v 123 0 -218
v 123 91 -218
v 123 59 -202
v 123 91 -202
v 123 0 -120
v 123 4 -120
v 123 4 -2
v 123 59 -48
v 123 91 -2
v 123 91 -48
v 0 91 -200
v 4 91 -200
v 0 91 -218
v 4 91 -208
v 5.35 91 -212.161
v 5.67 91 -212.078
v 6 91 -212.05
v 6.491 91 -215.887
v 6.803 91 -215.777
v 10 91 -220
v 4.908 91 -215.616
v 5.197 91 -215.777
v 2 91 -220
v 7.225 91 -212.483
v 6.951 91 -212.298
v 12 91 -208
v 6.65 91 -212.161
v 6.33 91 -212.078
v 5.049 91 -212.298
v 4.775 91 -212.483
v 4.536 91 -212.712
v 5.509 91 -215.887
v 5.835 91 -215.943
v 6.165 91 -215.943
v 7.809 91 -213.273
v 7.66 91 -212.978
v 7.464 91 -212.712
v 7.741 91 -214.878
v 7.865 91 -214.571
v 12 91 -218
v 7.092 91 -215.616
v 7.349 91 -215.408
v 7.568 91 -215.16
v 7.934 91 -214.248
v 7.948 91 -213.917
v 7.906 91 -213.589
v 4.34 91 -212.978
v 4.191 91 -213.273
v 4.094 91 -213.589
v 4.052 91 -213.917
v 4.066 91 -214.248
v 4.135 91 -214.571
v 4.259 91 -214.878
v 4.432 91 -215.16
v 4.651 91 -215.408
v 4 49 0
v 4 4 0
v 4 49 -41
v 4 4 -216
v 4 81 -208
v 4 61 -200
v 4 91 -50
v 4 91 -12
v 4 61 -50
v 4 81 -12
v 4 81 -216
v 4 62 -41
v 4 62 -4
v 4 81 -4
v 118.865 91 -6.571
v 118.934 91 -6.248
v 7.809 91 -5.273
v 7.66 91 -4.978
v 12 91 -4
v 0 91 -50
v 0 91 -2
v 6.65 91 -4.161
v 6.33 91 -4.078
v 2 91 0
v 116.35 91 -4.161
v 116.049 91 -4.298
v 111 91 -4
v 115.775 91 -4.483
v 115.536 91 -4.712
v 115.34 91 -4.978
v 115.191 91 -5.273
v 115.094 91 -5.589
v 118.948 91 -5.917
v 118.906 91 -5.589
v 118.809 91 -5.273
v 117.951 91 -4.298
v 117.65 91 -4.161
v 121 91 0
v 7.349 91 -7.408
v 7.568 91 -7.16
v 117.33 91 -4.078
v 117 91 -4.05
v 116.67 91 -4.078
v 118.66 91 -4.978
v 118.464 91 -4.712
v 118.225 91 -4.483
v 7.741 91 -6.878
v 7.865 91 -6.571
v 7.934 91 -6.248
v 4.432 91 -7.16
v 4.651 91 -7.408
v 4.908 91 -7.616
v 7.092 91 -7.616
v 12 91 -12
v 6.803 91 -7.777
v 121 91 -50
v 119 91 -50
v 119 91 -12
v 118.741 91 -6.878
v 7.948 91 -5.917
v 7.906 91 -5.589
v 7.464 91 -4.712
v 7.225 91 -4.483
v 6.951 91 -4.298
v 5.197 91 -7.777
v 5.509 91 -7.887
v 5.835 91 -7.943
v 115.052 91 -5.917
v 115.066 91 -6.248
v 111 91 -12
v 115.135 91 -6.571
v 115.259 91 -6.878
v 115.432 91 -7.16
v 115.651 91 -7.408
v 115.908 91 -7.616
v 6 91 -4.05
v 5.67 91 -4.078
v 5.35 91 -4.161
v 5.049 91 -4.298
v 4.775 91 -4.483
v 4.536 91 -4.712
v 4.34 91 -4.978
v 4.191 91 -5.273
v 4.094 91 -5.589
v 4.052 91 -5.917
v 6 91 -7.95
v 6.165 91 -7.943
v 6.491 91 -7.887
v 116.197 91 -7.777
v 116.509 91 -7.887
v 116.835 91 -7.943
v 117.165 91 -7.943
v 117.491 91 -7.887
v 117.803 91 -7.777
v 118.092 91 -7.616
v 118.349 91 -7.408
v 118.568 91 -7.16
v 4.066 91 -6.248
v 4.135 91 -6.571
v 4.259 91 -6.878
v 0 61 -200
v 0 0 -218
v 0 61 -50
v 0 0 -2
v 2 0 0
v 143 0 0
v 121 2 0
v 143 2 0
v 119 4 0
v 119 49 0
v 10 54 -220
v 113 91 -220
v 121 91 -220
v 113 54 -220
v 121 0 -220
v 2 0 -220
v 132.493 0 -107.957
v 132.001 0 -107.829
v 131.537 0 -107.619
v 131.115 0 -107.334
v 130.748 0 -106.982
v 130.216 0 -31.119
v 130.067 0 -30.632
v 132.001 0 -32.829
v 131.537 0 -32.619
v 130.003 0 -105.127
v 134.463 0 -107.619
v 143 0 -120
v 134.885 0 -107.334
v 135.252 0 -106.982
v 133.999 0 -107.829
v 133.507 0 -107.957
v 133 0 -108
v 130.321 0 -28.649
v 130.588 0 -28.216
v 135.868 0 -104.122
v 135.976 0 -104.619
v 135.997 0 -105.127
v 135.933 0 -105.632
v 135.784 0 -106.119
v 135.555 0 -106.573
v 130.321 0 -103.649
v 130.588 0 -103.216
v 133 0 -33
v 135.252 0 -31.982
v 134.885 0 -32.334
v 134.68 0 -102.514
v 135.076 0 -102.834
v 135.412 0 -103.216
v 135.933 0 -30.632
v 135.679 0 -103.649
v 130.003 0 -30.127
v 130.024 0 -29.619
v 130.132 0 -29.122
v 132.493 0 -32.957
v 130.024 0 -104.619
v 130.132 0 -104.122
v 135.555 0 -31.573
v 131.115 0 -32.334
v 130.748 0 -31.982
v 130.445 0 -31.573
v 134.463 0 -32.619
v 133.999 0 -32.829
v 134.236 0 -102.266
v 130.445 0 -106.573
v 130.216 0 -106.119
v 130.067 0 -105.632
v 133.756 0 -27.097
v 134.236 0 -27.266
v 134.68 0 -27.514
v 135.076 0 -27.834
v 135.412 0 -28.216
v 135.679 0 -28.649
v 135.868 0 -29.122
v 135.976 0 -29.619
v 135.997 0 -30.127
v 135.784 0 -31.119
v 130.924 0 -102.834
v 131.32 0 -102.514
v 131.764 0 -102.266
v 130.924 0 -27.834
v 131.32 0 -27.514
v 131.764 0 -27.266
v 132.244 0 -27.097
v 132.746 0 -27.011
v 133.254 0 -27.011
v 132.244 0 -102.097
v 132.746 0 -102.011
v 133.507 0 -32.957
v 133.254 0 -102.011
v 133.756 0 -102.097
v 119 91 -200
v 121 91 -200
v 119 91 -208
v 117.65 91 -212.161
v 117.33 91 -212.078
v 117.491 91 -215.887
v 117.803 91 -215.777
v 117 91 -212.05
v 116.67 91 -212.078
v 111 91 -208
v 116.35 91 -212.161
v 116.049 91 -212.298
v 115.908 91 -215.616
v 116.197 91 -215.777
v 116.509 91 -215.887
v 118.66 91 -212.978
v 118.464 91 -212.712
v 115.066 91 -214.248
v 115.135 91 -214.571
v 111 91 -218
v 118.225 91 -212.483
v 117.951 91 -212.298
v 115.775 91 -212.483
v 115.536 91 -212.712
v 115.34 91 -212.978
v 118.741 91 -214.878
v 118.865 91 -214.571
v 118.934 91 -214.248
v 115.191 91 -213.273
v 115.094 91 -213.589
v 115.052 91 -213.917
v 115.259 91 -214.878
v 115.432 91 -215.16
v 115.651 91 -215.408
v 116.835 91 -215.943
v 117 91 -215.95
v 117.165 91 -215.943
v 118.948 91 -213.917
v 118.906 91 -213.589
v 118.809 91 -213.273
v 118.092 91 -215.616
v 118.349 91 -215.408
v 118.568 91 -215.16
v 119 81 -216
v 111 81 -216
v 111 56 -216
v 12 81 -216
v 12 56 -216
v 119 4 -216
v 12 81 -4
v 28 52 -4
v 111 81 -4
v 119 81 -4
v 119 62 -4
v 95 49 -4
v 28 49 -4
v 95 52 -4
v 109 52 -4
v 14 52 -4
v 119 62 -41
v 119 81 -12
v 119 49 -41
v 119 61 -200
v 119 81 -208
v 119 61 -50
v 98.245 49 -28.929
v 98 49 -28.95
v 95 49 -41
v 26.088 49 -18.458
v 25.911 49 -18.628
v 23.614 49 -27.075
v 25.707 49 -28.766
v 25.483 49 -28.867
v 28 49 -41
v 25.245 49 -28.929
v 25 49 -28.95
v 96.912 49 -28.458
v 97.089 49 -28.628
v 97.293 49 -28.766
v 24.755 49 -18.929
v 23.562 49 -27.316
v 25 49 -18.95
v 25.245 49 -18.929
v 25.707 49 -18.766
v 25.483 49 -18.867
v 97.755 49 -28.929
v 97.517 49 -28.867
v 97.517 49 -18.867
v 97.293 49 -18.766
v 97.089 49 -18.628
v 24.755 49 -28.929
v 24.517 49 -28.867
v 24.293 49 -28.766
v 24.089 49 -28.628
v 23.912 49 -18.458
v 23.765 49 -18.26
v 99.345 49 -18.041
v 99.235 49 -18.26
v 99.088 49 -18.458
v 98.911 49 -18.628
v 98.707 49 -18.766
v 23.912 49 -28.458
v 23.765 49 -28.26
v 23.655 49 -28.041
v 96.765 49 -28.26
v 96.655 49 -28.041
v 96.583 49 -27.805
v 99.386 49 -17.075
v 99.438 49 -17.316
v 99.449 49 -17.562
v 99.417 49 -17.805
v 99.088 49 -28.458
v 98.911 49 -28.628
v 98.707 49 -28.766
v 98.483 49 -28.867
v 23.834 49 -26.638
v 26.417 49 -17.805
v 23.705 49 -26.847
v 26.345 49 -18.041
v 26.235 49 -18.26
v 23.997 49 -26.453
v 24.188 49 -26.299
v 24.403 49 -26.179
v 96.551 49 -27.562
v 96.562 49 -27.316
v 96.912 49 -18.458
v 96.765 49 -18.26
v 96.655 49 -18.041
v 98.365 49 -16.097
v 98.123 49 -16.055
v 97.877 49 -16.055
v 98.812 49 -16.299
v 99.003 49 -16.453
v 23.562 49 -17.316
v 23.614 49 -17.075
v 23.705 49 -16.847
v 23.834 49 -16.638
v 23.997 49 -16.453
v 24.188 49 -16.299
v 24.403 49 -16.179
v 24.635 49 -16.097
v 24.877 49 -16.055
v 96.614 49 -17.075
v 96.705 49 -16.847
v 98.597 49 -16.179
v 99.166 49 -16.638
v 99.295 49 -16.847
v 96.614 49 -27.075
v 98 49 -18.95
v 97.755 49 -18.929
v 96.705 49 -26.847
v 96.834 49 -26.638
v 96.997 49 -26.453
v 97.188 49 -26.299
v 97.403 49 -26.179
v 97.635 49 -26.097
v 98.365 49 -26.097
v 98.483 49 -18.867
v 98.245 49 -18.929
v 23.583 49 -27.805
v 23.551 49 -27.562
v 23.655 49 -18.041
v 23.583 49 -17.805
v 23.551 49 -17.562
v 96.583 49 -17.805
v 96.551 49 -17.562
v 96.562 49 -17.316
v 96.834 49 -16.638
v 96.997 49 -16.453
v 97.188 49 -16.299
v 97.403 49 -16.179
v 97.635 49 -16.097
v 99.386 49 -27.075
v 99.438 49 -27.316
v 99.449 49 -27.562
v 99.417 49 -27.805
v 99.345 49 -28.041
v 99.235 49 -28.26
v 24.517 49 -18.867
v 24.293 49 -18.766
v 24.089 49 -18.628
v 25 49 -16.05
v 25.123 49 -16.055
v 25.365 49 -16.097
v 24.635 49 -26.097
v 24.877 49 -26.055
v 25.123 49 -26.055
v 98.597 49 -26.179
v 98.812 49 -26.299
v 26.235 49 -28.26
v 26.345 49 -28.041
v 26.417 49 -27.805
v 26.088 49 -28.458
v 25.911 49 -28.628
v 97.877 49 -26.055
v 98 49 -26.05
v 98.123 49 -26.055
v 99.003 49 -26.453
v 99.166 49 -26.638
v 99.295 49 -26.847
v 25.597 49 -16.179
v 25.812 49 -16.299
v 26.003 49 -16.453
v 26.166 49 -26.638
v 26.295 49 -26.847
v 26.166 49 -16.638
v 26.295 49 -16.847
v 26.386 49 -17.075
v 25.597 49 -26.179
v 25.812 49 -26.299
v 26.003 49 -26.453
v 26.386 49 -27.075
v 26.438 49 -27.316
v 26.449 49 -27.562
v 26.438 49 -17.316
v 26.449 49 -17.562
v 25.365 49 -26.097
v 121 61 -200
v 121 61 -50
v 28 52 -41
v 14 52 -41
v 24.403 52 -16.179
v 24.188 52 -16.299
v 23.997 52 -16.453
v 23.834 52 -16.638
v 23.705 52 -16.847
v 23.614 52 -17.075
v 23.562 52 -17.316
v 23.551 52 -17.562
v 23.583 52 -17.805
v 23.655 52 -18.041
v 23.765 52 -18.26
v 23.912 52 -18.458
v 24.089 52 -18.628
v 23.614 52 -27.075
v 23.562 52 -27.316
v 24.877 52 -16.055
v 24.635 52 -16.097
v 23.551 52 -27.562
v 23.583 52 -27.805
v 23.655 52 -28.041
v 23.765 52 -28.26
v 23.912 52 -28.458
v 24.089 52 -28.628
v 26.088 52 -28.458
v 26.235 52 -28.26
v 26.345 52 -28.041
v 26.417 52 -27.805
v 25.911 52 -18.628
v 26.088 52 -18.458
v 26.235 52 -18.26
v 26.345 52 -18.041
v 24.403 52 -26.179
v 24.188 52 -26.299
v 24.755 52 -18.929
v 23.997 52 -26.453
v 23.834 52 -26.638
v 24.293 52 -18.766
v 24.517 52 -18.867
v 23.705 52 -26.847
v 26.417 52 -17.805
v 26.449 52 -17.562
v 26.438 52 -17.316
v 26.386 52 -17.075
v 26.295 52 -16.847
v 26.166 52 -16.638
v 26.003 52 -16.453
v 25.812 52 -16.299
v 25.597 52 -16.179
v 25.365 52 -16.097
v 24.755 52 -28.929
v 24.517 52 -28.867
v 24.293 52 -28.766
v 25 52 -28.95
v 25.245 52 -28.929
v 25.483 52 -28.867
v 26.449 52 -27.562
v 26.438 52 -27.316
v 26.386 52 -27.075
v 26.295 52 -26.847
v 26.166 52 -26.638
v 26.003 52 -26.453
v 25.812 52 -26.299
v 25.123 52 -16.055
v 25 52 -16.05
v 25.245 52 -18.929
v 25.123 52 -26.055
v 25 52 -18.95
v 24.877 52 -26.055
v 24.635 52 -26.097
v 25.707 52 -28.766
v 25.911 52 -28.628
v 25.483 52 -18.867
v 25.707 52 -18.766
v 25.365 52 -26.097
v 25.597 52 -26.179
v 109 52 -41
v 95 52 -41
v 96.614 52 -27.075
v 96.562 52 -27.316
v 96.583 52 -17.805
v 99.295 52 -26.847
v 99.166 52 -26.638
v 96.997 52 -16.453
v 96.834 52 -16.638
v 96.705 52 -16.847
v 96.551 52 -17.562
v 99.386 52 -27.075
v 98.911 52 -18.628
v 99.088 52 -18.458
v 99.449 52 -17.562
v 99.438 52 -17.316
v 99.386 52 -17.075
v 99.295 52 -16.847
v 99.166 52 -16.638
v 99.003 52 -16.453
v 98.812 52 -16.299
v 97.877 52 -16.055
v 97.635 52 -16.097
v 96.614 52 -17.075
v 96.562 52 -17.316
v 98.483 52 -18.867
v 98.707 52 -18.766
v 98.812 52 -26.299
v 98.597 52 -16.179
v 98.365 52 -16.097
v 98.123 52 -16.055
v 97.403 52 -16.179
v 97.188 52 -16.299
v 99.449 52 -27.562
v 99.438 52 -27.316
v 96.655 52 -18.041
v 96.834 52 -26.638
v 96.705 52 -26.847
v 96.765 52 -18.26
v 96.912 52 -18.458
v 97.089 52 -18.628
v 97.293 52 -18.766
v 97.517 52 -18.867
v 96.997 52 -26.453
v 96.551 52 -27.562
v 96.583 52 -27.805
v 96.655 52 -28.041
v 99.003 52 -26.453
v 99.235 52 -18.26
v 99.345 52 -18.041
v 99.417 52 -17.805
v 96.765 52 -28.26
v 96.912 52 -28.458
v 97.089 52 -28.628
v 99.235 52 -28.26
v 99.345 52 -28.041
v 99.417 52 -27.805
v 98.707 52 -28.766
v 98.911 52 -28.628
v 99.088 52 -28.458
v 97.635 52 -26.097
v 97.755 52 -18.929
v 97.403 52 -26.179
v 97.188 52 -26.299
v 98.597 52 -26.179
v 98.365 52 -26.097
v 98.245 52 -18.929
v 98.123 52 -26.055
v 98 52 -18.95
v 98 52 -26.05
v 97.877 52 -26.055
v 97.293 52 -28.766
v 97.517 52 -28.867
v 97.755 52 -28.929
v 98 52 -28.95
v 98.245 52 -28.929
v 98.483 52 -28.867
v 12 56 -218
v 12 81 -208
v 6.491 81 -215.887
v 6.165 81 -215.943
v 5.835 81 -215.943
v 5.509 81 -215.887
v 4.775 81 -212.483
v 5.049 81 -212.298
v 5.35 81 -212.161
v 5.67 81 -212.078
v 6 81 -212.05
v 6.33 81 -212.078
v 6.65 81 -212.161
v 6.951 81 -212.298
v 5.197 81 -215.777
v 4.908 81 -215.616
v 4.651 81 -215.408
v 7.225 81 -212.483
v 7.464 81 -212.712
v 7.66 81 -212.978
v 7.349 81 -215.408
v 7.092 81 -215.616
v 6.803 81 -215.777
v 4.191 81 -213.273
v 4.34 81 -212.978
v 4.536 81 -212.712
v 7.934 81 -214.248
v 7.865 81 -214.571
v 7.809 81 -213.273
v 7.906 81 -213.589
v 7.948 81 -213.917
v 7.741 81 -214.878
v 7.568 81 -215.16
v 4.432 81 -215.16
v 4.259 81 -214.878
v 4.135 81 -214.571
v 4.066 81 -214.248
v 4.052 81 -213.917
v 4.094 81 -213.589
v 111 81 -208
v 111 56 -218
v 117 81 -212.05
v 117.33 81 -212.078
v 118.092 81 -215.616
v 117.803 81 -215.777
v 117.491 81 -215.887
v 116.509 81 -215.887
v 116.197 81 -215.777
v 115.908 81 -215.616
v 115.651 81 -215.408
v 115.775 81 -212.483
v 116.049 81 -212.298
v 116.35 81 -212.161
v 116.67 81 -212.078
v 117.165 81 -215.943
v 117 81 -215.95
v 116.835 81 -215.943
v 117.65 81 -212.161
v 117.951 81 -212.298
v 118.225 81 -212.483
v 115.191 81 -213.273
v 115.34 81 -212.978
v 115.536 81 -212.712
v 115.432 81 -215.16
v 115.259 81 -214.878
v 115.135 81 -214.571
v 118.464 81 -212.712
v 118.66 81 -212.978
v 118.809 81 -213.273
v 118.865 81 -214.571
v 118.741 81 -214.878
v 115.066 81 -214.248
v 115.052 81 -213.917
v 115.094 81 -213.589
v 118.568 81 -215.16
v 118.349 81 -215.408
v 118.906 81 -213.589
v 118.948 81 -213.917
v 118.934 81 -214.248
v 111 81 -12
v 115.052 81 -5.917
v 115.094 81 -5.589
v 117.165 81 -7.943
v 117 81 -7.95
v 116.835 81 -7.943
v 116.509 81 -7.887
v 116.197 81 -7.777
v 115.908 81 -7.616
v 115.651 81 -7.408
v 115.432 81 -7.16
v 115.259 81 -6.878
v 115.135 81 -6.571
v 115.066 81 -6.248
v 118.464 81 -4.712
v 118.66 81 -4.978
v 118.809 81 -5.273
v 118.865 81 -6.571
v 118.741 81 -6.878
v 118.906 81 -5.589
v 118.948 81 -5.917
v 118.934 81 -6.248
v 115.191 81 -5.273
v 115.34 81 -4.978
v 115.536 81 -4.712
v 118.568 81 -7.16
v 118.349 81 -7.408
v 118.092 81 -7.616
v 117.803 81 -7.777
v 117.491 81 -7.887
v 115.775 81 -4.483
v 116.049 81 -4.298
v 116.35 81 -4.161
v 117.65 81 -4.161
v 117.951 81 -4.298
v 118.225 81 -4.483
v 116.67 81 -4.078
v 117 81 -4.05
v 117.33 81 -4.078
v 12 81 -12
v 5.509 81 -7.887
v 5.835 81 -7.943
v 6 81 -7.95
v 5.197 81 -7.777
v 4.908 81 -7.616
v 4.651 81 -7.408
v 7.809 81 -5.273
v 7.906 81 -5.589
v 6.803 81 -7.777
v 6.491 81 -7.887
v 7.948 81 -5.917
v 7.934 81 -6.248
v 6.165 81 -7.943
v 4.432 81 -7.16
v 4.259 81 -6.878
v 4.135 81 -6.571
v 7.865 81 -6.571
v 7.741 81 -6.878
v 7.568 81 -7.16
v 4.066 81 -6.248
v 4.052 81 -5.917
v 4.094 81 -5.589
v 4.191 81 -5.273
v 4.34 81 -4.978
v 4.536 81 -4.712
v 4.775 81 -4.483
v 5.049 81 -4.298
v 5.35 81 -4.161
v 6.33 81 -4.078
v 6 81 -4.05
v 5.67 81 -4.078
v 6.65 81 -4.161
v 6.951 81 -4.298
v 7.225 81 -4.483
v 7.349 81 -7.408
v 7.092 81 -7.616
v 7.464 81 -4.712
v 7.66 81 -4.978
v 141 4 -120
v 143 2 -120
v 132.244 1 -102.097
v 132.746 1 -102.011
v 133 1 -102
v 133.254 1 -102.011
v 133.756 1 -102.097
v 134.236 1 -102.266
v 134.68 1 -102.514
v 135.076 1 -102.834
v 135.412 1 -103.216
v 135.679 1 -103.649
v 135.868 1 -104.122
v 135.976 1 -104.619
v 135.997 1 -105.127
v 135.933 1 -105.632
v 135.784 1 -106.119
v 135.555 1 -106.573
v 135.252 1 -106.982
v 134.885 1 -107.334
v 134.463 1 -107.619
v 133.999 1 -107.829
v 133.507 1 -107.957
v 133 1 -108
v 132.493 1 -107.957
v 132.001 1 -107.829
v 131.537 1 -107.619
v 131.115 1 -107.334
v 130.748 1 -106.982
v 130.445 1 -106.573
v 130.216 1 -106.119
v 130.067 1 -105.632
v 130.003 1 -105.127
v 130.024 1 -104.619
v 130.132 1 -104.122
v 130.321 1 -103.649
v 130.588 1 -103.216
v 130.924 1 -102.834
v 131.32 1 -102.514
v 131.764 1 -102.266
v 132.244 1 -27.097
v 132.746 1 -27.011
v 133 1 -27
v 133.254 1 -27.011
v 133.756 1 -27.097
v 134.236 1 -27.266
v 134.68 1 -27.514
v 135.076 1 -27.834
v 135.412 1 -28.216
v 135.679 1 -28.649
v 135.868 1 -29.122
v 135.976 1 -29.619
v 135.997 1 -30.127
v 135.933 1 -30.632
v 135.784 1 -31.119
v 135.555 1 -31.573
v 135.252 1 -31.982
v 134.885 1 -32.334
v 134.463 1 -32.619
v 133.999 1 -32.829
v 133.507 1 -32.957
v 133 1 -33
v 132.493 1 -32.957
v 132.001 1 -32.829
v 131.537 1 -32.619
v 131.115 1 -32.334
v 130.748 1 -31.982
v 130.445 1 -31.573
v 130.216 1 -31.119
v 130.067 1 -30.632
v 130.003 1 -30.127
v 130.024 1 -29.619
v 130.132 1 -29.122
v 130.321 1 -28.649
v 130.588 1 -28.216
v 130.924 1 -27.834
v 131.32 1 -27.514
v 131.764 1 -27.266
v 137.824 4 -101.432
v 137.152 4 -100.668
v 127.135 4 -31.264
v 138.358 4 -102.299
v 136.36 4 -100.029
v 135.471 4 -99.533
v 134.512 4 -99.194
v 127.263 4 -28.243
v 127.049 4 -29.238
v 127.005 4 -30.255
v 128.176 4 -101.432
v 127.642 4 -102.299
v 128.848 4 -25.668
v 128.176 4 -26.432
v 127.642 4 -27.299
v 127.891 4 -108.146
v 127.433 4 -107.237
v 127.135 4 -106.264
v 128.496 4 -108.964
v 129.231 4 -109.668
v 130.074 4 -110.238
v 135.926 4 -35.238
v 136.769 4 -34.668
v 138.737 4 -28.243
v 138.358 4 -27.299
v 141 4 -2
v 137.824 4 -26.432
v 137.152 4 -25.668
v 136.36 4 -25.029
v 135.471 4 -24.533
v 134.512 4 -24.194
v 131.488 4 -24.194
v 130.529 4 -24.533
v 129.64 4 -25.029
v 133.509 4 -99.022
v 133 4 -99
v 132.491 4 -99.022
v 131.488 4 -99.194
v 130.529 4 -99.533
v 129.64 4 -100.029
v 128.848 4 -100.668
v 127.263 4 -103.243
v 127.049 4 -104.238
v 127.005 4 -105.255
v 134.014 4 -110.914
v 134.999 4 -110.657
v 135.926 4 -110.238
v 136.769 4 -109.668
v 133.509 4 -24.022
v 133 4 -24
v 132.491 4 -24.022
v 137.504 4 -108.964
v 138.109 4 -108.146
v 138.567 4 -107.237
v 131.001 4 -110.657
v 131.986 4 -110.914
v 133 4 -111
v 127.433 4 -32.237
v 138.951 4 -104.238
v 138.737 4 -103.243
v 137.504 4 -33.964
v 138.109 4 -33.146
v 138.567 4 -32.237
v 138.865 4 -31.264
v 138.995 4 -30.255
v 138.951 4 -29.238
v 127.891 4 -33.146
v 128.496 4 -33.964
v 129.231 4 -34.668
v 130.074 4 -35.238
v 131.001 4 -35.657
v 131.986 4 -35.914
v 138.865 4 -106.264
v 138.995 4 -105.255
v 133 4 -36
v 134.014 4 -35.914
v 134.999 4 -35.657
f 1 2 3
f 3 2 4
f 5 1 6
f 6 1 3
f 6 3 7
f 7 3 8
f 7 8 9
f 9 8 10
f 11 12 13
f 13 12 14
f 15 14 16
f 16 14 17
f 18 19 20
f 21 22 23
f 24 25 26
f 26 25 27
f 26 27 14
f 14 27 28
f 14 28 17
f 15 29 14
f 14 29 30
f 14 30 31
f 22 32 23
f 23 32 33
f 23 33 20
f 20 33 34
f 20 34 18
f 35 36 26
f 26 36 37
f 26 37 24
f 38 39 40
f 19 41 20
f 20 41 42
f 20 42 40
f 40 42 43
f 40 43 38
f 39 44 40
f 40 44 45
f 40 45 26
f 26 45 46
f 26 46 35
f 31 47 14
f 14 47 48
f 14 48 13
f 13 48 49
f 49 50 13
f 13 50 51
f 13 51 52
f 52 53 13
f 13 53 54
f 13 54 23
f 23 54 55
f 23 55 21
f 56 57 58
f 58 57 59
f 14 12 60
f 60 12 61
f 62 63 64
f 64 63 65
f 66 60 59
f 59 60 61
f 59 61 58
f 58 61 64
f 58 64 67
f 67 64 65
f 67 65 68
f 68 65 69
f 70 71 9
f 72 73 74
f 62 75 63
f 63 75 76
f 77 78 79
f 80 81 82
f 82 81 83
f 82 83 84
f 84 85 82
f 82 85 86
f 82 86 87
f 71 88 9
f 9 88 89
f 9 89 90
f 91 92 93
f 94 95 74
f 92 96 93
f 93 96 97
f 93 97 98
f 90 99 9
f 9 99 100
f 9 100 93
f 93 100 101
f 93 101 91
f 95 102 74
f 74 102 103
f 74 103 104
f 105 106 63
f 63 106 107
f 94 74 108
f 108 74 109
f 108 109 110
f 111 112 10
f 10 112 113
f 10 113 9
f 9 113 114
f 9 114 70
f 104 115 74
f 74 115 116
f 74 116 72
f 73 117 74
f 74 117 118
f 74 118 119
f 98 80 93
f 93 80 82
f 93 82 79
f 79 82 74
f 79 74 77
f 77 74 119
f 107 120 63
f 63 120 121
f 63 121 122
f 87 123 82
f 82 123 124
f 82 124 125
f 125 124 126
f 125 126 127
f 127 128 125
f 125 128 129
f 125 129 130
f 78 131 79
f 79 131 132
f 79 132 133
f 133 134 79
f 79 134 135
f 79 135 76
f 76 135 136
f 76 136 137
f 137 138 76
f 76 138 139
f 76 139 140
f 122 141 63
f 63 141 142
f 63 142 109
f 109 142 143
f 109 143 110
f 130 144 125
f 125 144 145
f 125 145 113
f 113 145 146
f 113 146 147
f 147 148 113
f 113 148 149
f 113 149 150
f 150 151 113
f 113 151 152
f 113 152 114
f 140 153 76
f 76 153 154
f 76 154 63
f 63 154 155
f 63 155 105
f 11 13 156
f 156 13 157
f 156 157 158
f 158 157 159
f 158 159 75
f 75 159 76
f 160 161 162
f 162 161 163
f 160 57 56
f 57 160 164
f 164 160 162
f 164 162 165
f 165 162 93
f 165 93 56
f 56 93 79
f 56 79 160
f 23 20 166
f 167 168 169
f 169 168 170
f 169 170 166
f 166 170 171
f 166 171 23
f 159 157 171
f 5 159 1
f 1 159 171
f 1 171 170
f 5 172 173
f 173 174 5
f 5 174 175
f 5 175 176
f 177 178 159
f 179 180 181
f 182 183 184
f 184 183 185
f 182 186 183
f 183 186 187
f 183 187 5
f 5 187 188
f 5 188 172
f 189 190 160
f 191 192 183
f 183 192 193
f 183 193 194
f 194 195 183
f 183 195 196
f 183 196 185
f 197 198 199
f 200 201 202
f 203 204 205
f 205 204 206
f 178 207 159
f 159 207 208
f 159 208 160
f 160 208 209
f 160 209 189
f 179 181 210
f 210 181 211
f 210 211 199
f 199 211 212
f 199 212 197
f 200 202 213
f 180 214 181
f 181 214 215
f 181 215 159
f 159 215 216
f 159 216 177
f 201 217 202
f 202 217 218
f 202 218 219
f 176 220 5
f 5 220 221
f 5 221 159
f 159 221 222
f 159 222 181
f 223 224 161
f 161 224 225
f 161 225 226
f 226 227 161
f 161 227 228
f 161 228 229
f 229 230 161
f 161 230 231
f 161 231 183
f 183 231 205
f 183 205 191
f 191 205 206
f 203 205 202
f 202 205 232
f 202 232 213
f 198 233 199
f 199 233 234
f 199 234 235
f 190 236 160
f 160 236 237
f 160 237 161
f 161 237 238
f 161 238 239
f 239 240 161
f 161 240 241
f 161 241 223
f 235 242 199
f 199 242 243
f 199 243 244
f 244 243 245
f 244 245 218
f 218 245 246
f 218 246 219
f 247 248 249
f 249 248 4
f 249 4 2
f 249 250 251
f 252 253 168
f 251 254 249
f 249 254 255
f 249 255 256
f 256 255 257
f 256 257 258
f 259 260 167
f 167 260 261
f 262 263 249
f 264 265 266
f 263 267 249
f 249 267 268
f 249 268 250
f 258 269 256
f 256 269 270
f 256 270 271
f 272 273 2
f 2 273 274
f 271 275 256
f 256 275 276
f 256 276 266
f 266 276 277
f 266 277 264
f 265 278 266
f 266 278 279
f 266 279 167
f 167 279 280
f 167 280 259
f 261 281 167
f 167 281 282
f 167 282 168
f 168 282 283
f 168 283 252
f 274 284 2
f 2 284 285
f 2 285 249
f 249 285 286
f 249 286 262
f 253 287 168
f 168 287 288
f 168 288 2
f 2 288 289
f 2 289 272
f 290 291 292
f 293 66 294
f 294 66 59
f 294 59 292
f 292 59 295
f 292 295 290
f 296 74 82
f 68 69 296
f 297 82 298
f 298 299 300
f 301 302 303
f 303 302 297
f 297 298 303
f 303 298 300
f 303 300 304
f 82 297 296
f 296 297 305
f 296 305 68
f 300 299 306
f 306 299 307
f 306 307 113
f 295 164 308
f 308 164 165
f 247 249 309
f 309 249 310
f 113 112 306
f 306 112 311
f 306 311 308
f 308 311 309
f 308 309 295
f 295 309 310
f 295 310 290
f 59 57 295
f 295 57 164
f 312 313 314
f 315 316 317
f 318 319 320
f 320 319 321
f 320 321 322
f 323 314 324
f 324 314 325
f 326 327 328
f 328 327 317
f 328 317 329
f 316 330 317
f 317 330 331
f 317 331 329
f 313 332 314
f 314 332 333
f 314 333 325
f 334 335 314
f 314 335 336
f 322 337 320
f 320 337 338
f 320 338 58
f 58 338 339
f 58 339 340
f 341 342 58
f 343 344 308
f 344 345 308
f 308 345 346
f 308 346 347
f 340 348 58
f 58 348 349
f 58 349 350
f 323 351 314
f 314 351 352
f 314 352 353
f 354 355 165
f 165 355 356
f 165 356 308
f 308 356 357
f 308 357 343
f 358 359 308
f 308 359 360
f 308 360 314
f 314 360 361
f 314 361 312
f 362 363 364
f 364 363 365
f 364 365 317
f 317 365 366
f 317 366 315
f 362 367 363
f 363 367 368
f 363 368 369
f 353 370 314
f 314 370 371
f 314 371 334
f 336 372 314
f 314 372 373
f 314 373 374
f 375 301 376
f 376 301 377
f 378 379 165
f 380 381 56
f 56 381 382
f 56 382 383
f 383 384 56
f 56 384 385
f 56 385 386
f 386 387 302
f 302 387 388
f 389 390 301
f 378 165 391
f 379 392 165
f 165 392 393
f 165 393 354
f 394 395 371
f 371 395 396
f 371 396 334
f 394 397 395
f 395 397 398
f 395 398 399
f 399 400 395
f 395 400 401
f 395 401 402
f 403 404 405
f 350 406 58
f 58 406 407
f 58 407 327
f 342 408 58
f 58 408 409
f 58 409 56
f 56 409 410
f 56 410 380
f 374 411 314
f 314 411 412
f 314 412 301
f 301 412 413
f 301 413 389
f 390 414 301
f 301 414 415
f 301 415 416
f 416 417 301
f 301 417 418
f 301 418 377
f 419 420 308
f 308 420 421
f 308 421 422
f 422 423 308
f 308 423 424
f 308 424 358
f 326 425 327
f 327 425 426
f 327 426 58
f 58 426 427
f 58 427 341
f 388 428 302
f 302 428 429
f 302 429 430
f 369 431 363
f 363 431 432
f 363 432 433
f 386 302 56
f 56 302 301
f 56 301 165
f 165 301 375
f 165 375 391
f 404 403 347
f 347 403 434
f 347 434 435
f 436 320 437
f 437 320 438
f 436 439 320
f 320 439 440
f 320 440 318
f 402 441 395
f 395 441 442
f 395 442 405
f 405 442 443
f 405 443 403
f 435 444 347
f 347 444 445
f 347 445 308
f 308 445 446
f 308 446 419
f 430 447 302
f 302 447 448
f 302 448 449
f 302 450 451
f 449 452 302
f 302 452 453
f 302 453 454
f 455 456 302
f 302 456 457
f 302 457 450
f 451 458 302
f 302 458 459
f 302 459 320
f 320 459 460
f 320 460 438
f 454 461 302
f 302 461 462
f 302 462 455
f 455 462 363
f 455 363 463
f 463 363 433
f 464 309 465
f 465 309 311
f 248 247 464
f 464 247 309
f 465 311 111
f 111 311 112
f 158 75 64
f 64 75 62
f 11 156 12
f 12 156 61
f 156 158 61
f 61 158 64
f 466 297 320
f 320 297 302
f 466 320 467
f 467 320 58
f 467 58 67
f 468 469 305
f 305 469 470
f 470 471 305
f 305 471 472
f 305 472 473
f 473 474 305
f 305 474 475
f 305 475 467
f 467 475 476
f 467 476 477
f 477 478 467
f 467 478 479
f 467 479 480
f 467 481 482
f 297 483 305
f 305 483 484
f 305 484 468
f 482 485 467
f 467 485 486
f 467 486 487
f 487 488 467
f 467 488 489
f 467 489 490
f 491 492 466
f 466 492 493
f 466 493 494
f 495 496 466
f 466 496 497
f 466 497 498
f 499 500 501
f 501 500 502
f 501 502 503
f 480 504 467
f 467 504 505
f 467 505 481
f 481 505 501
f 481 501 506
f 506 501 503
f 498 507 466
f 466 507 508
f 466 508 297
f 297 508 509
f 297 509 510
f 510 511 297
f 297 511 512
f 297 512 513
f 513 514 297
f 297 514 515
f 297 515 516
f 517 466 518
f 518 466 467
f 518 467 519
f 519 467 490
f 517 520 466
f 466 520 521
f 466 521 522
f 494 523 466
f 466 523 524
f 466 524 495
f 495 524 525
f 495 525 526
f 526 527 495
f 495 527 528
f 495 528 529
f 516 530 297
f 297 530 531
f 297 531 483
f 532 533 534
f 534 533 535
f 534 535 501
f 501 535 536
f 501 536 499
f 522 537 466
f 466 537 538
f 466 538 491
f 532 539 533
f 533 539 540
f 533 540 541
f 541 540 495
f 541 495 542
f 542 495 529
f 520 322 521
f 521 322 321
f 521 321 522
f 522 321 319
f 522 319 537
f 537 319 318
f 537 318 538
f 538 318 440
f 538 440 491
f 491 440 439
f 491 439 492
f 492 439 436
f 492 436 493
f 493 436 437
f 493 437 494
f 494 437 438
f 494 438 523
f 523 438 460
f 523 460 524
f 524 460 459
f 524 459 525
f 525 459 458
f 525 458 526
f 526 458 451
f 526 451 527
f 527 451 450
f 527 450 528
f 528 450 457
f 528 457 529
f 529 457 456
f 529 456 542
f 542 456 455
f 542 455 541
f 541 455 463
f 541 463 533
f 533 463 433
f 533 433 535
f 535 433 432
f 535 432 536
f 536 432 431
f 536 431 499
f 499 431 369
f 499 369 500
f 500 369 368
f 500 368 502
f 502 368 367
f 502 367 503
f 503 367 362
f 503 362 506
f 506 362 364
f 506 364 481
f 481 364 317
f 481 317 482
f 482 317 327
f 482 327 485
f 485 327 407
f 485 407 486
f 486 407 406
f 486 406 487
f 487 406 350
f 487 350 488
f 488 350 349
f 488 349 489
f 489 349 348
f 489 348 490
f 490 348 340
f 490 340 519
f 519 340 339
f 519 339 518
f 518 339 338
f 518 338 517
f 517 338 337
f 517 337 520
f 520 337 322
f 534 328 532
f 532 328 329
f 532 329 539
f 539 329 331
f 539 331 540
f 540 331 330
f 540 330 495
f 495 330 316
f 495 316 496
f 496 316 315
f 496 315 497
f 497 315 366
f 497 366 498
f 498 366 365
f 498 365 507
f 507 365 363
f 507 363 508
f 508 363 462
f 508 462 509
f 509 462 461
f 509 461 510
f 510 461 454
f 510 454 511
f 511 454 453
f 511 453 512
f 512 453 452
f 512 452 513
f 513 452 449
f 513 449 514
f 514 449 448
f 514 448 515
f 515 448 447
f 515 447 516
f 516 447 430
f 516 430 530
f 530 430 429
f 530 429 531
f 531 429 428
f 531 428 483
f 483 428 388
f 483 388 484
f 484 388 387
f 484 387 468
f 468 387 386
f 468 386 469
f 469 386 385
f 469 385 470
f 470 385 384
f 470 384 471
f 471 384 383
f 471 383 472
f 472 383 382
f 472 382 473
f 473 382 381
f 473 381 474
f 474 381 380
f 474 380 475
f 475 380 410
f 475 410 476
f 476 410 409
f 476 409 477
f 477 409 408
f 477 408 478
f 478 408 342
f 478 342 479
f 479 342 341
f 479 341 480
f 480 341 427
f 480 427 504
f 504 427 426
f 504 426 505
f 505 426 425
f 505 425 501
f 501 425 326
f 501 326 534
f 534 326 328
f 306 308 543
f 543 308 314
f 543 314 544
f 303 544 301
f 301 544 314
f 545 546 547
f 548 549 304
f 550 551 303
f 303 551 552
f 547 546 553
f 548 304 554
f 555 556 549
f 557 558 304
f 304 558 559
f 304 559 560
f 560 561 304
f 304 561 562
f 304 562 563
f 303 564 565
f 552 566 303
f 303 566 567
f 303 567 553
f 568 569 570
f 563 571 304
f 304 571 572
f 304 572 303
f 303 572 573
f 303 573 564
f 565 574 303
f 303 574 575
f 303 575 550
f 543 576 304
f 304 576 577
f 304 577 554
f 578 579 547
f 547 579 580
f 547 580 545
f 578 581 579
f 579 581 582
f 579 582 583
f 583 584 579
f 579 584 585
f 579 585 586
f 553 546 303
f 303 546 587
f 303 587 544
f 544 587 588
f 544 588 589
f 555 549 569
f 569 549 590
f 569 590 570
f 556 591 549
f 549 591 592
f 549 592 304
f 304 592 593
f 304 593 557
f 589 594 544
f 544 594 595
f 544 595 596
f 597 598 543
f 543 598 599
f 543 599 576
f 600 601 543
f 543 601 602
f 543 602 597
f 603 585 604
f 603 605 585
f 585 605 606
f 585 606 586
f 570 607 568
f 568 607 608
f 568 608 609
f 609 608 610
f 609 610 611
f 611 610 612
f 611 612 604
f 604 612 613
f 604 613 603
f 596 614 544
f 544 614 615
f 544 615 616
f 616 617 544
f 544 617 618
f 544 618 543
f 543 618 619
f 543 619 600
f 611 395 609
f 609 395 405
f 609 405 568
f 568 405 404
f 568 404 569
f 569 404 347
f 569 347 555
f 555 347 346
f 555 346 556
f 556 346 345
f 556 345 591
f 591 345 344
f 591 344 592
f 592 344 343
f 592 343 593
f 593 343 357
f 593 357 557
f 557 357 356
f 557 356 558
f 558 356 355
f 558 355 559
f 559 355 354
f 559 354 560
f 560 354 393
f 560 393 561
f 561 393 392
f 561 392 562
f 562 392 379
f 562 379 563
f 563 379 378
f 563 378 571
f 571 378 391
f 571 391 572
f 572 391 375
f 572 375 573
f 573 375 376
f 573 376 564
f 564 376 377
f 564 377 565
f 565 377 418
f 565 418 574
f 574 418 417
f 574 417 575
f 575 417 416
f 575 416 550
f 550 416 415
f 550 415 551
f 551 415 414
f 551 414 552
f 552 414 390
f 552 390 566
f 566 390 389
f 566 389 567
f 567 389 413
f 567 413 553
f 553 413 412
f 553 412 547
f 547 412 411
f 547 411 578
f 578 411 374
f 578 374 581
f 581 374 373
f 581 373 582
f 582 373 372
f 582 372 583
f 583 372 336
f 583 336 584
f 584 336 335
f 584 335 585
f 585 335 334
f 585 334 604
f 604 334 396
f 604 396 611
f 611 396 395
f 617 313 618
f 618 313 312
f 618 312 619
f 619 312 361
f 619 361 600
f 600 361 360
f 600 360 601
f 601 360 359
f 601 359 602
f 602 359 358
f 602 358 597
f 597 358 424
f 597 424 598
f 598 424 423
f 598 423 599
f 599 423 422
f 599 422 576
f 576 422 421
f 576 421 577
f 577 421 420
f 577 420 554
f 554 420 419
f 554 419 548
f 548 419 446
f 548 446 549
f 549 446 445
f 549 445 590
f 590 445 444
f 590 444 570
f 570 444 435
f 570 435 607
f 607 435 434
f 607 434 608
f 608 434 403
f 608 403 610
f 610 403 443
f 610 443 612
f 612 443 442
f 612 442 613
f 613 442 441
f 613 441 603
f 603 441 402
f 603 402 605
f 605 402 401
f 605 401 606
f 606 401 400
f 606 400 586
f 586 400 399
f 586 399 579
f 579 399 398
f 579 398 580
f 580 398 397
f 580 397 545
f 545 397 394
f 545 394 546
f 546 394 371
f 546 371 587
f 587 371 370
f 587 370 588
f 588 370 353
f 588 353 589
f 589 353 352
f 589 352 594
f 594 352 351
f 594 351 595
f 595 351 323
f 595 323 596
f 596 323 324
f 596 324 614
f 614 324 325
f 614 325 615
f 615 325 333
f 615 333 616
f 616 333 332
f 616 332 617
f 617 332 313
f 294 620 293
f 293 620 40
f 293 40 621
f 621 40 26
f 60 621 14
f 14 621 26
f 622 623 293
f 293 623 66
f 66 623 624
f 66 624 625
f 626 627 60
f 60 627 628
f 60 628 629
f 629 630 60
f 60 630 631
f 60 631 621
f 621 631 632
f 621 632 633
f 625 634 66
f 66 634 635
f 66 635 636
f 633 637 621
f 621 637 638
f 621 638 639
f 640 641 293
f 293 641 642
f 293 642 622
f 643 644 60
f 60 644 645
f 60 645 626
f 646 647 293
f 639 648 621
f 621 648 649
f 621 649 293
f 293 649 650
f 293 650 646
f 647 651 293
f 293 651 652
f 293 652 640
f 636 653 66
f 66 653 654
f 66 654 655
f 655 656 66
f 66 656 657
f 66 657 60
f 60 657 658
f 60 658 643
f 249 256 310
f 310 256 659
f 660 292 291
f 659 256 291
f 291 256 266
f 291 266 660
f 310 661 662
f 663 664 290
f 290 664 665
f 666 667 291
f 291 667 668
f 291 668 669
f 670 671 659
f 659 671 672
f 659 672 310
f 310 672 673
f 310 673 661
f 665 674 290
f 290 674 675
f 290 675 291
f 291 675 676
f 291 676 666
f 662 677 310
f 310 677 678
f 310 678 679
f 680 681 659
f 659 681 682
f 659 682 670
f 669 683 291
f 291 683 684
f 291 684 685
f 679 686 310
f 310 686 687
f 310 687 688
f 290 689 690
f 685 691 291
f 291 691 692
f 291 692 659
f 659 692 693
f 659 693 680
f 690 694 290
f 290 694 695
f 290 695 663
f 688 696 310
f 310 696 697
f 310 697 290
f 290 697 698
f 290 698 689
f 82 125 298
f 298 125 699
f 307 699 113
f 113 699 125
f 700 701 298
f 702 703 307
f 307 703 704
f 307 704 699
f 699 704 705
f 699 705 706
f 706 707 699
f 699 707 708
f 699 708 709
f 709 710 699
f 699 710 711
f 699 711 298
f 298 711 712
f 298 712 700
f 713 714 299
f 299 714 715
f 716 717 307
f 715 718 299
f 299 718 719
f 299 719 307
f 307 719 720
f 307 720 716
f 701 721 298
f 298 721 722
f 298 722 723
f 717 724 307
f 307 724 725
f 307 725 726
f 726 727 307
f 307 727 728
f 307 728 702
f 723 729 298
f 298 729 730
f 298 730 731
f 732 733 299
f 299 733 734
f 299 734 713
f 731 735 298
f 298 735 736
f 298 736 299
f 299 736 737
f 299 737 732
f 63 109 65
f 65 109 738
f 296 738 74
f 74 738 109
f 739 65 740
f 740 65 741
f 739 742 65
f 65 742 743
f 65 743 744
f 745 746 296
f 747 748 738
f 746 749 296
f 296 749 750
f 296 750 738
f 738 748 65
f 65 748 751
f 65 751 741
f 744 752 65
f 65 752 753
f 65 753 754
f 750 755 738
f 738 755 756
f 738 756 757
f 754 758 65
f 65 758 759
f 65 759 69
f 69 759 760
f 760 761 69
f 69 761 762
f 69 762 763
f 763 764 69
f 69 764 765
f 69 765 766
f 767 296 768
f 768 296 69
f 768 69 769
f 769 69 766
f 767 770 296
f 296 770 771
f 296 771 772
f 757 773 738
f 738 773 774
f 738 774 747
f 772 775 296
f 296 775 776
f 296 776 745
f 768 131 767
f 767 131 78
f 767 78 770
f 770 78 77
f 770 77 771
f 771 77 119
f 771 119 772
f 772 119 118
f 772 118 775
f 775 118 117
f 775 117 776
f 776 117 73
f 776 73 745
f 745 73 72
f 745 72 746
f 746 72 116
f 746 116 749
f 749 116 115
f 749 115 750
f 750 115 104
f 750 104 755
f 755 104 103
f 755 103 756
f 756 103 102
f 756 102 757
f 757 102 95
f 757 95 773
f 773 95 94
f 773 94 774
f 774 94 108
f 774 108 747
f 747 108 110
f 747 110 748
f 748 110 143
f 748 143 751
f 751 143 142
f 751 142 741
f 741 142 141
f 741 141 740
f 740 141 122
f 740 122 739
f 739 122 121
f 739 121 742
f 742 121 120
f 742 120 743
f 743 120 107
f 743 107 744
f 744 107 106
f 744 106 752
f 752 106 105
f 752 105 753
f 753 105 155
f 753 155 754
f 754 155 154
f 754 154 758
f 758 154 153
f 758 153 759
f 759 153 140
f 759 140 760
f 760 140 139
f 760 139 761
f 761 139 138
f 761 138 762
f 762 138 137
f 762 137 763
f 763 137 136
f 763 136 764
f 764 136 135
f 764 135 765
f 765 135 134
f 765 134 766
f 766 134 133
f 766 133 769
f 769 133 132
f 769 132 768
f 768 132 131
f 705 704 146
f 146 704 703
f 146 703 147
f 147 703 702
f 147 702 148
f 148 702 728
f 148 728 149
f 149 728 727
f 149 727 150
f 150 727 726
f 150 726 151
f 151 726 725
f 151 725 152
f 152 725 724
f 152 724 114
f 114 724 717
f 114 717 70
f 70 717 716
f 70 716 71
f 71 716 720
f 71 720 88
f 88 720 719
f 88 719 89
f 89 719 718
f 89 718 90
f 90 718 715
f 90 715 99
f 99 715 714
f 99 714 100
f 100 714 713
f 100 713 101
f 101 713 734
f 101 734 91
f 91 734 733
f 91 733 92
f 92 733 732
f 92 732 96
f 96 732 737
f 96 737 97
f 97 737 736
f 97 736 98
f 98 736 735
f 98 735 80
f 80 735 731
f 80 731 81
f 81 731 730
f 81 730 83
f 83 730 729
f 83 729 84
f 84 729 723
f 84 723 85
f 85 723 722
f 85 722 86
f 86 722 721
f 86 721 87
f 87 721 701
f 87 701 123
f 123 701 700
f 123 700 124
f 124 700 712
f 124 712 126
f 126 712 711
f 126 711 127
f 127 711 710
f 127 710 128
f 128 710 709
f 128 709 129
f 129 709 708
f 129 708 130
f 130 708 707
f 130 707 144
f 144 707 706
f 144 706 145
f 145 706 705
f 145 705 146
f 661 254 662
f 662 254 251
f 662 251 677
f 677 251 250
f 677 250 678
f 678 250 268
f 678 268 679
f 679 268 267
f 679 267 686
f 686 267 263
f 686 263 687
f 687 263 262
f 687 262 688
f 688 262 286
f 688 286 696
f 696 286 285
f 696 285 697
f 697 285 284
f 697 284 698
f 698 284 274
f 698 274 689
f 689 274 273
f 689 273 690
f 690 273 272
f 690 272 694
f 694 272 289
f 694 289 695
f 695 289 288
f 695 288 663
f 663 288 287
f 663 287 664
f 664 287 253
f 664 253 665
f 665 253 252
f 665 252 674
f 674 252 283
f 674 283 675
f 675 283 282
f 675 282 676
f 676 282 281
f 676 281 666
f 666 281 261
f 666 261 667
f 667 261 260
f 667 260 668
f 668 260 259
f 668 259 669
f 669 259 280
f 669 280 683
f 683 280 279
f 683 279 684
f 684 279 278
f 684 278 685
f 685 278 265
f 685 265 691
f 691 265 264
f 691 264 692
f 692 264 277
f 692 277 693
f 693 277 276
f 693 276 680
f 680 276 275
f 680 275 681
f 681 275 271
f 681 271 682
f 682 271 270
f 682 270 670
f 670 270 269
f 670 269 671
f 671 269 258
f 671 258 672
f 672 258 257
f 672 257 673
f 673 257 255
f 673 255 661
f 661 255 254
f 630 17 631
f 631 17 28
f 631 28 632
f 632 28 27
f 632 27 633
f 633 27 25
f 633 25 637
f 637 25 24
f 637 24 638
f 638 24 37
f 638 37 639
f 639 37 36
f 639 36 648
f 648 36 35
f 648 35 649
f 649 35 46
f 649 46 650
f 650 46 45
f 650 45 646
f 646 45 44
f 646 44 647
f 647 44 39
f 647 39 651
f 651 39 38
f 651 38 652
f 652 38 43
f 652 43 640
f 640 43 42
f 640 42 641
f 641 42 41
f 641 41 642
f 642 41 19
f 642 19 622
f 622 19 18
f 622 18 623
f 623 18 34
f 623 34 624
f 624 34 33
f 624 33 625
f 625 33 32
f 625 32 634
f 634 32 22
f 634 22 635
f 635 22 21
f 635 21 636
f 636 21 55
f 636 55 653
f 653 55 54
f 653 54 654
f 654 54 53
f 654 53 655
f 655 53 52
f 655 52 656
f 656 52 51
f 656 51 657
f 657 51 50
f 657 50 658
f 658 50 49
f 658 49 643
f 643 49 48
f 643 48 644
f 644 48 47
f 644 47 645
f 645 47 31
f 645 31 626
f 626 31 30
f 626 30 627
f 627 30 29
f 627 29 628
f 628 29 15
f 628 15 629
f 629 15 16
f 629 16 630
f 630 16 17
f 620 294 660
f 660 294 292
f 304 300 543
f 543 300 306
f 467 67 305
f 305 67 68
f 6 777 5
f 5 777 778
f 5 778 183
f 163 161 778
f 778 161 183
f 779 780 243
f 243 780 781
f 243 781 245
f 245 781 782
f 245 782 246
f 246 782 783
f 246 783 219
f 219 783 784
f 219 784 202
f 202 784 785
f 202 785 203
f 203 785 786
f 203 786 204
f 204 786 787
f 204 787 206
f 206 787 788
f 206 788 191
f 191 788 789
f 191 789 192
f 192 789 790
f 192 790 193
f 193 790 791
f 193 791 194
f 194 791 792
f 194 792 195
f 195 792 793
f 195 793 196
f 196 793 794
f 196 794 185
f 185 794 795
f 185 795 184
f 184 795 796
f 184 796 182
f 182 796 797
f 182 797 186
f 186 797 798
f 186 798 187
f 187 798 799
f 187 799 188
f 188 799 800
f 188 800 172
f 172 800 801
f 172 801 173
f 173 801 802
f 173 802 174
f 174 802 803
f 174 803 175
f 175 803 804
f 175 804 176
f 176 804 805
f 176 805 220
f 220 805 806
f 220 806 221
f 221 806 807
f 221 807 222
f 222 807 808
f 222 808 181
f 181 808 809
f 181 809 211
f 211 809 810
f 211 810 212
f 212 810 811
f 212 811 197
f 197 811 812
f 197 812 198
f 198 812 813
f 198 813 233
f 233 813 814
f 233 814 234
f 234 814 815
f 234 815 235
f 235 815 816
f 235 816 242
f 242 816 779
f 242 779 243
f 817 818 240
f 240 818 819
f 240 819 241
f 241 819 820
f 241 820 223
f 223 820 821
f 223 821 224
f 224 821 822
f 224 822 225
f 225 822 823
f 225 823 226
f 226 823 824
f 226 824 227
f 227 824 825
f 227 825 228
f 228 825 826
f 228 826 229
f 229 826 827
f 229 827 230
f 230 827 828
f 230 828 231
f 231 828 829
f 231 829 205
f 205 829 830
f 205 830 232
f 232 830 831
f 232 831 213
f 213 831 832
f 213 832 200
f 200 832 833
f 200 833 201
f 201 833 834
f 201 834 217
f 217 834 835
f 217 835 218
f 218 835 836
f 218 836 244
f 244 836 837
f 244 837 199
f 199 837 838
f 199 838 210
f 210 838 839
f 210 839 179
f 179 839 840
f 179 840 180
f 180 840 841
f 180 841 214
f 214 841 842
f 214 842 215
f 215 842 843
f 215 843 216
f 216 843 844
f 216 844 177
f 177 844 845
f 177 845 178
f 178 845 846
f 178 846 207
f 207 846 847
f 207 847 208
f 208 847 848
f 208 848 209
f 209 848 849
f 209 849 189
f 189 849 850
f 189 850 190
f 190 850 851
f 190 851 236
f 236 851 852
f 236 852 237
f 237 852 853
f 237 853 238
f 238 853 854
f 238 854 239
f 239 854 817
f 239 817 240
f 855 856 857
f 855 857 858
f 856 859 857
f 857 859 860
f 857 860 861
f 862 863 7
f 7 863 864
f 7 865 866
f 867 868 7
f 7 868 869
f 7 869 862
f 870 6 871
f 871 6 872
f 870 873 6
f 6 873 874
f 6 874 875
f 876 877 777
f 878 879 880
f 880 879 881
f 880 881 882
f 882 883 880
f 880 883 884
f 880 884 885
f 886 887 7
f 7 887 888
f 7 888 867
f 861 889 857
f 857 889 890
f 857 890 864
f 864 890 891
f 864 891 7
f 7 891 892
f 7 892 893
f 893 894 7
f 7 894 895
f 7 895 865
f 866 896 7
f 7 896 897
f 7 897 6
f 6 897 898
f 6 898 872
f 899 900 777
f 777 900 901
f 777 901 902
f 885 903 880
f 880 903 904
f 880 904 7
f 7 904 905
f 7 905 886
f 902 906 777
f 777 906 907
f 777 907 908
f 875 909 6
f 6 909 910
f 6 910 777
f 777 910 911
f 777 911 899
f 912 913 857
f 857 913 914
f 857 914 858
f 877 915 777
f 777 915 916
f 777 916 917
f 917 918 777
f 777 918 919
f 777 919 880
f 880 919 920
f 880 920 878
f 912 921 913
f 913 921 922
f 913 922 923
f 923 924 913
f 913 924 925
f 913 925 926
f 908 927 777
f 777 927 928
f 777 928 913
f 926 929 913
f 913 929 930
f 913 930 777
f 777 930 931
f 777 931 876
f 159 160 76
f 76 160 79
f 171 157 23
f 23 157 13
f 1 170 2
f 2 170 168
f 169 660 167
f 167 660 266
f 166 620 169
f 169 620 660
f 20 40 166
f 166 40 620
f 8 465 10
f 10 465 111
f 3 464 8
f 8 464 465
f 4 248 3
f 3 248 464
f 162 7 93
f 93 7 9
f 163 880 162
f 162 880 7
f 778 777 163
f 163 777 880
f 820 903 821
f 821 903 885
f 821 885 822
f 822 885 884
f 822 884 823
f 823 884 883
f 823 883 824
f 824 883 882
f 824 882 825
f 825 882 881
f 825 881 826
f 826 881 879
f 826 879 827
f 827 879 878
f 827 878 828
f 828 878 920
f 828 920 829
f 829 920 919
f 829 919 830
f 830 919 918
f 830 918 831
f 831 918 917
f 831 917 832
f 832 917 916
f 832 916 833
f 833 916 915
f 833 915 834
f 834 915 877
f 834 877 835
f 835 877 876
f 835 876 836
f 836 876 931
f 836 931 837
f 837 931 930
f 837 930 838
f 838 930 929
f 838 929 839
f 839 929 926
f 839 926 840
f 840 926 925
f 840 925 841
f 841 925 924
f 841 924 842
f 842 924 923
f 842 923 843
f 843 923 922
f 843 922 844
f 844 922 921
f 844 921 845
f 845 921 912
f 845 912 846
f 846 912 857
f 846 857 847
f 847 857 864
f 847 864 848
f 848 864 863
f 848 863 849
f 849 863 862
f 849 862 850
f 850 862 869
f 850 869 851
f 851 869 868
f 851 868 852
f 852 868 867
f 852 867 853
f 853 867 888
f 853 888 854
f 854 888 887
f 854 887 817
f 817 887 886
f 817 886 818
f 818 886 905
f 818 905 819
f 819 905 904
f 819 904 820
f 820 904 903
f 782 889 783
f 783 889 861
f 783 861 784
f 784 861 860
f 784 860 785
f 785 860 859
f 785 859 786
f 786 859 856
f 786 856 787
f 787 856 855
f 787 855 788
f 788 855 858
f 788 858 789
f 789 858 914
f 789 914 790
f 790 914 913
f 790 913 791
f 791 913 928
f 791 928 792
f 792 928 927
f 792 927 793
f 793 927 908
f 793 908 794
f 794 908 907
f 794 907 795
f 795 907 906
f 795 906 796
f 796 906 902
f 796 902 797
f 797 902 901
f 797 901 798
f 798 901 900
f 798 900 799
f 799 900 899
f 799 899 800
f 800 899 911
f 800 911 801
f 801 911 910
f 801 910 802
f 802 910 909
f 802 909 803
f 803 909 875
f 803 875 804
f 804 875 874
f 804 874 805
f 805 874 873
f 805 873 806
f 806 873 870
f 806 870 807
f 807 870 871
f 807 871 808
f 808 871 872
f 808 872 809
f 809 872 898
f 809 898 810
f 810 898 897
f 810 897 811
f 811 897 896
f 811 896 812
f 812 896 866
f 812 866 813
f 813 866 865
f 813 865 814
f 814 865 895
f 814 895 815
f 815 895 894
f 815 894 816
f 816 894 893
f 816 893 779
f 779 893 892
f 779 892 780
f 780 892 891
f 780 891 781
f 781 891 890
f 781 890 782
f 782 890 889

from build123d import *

# Parameters (mm, degrees)
SKETCH1_W           = 123
SKETCH1_H           = 220
BOSS_EXTRUDE1_DEPTH = 4
SKETCH2_W           = 123
SKETCH2_H           = 220
SKETCH2_W_2         = 115
SKETCH2_H_2         = 212
BOSS_EXTRUDE2_DEPTH = 87
CUT_EXTRUDE1_REACH  = 269.974
SKETCH3_W           = 115
SKETCH3_H           = 45
SKETCH4_W           = 150
SKETCH4_H           = 30
CUT_EXTRUDE2_DEPTH  = 268.973879324
SKETCH6_W           = 24
SKETCH6_H           = 37
SKETCH6_R           = 1.45
BOSS_EXTRUDE4_DEPTH = 3
SKETCH8_W           = 12
SKETCH8_H           = 12
BOSS_EXTRUDE5_DEPTH = 10
CUT_EXTRUDE3_REACH  = 269.974
SKETCH9_R           = 1.95
CUT_EXTRUDE4_REACH  = 269.974
SKETCH10_W          = 99
SKETCH10_H          = 35
CHAMFER1_SIZE       = 10
SKETCH11_W          = 20
SKETCH11_H          = 120
SKETCH11_R          = 3
BOSS_EXTRUDE6_DEPTH = 4
CHAMFER3_SIZE       = 2
CHAMFER4_SIZE       = 3


with BuildPart() as part:
    # Sketch1 → Boss-Extrude1 (new body)
    with BuildSketch(Plane(origin=(0, 0, 0), x_dir=(1, 0, 0), z_dir=(0, 1, 0))):
        with Locations((61.5, 110)):
            Rectangle(SKETCH1_W, SKETCH1_H)
    extrude(amount=BOSS_EXTRUDE1_DEPTH)

    # Sketch2 → Boss-Extrude2 (add)
    with BuildSketch(Plane(origin=(0, 4, 0), x_dir=(1, 0, 0), z_dir=(0, 1, 0))):
        with Locations((61.5, 110)):
            Rectangle(SKETCH2_W, SKETCH2_H)
        with Locations((61.5, 110)):
            Rectangle(SKETCH2_W_2, SKETCH2_H_2, mode=Mode.SUBTRACT)
    extrude(amount=BOSS_EXTRUDE2_DEPTH)

    # Sketch3 → Cut-Extrude1 (cut, up to next)
    with BuildSketch(Plane.XY, mode=Mode.PRIVATE) as cut_extrude1_sk1:
        with Locations((61.5, 26.5)):
            Rectangle(SKETCH3_W, SKETCH3_H)
    cut_extrude1_tool1 = extrude(cut_extrude1_sk1.sketch, amount=-CUT_EXTRUDE1_REACH, mode=Mode.PRIVATE) & part.part
    add(cut_extrude1_tool1.solids().sort_by_distance((61.5, 26.5, 0))[0], mode=Mode.SUBTRACT)

    # Sketch4 → Cut-Extrude2 (cut, through all)
    with BuildSketch(Plane(origin=(123, 0, 0), x_dir=(0, 0, -1), z_dir=(1, 0, 0))):
        with Locations((125, 76)):
            Rectangle(SKETCH4_W, SKETCH4_H)
    extrude(amount=-CUT_EXTRUDE2_DEPTH, mode=Mode.SUBTRACT)

    # Sketch6 → Boss-Extrude4 (add)
    # profile 1 of 2: a face of its own
    with BuildSketch(Plane(origin=(0, 49, 0), x_dir=(-1, 0, 0), z_dir=(0, -1, 0))):
        with Locations((-16, 22.5)):
            Rectangle(SKETCH6_W, SKETCH6_H)
        with Locations(Location((-25, 27.5, 0), (0, 0, 90))):
            Circle(SKETCH6_R, mode=Mode.SUBTRACT)
        with Locations(Location((-25, 17.5, 0), (0, 0, 270))):
            Circle(SKETCH6_R, mode=Mode.SUBTRACT)
    # profile 2 of 2: a face of its own
    with BuildSketch(Plane(origin=(0, 49, 0), x_dir=(-1, 0, 0), z_dir=(0, -1, 0))):
        with Locations((-107, 22.5)):
            Rectangle(SKETCH6_W, SKETCH6_H)
        with Locations(Location((-98, 17.5, 0), (0, 0, 90))):
            Circle(SKETCH6_R, mode=Mode.SUBTRACT)
        with Locations(Location((-98, 27.5, 0), (0, 0, 270))):
            Circle(SKETCH6_R, mode=Mode.SUBTRACT)
    extrude(amount=-BOSS_EXTRUDE4_DEPTH)

    # Sketch8 → Boss-Extrude5 (add)
    with BuildSketch(Plane(origin=(0, 91, 0), x_dir=(1, 0, 0), z_dir=(0, 1, 0))):
        with Locations((117, 214)):
            Rectangle(SKETCH8_W, SKETCH8_H)
        with Locations((6, 214)):
            Rectangle(SKETCH8_W, SKETCH8_H)
        with Locations((117, 6)):
            Rectangle(SKETCH8_W, SKETCH8_H)
        with Locations((6, 6)):
            Rectangle(SKETCH8_W, SKETCH8_H)
    extrude(amount=-BOSS_EXTRUDE5_DEPTH)

    # Sketch9 → Cut-Extrude3 (cut, up to next)
    with BuildSketch(Plane(origin=(0, 91, 0), x_dir=(1, 0, 0), z_dir=(0, 1, 0)), mode=Mode.PRIVATE) as cut_extrude3_sk1:
        with Locations(Location((6, 214, 0), (0, 0, 270))):
            Circle(SKETCH9_R)
    cut_extrude3_tool1 = extrude(cut_extrude3_sk1.sketch, amount=-CUT_EXTRUDE3_REACH, mode=Mode.PRIVATE) & part.part
    # Sketch9 → Cut-Extrude3 (cut, up to next)
    with BuildSketch(Plane(origin=(0, 91, 0), x_dir=(1, 0, 0), z_dir=(0, 1, 0)), mode=Mode.PRIVATE) as cut_extrude3_sk2:
        with Locations(Location((117, 214, 0), (0, 0, 90))):
            Circle(SKETCH9_R)
    cut_extrude3_tool2 = extrude(cut_extrude3_sk2.sketch, amount=-CUT_EXTRUDE3_REACH, mode=Mode.PRIVATE) & part.part
    # Sketch9 → Cut-Extrude3 (cut, up to next)
    with BuildSketch(Plane(origin=(0, 91, 0), x_dir=(1, 0, 0), z_dir=(0, 1, 0)), mode=Mode.PRIVATE) as cut_extrude3_sk3:
        with Locations(Location((117, 6, 0), (0, 0, 270))):
            Circle(SKETCH9_R)
    cut_extrude3_tool3 = extrude(cut_extrude3_sk3.sketch, amount=-CUT_EXTRUDE3_REACH, mode=Mode.PRIVATE) & part.part
    # Sketch9 → Cut-Extrude3 (cut, up to next)
    with BuildSketch(Plane(origin=(0, 91, 0), x_dir=(1, 0, 0), z_dir=(0, 1, 0)), mode=Mode.PRIVATE) as cut_extrude3_sk4:
        with Locations(Location((6, 6, 0), (0, 0, 90))):
            Circle(SKETCH9_R)
    cut_extrude3_tool4 = extrude(cut_extrude3_sk4.sketch, amount=-CUT_EXTRUDE3_REACH, mode=Mode.PRIVATE) & part.part
    add(cut_extrude3_tool1.solids().sort_by_distance((6, 91, -214))[0], mode=Mode.SUBTRACT)
    add(cut_extrude3_tool2.solids().sort_by_distance((117, 91, -214))[0], mode=Mode.SUBTRACT)
    add(cut_extrude3_tool3.solids().sort_by_distance((117, 91, -6))[0], mode=Mode.SUBTRACT)
    add(cut_extrude3_tool4.solids().sort_by_distance((6, 91, -6))[0], mode=Mode.SUBTRACT)

    # Sketch10 → Cut-Extrude4 (cut, up to next)
    with BuildSketch(Plane(origin=(0, 0, -220), x_dir=(-1, 0, 0), z_dir=(0, 0, -1)), mode=Mode.PRIVATE) as cut_extrude4_sk1:
        with Locations((-61.5, 73.5)):
            Rectangle(SKETCH10_W, SKETCH10_H)
    cut_extrude4_tool1 = extrude(cut_extrude4_sk1.sketch, amount=-CUT_EXTRUDE4_REACH, mode=Mode.PRIVATE) & part.part
    add(cut_extrude4_tool1.solids().sort_by_distance((61.5, 73.5, -220))[0], mode=Mode.SUBTRACT)

    # Chamfer1
    chamfer1_edges = [part.edges().sort_by_distance(p)[0] for p in [
        (119, 52, -22.5),
        (4, 52, -22.5),
    ]]
    chamfer(chamfer1_edges, length=CHAMFER1_SIZE)

    # Sketch11 → Boss-Extrude6 (add)
    with BuildSketch(Plane.XZ):
        with Locations((133, -60)):
            Rectangle(SKETCH11_W, SKETCH11_H)
        with Locations(Location((133, -105, 0), (0, 0, 270))):
            Circle(SKETCH11_R, mode=Mode.SUBTRACT)
        with Locations(Location((133, -30, 0), (0, 0, 270))):
            Circle(SKETCH11_R, mode=Mode.SUBTRACT)
    extrude(amount=-BOSS_EXTRUDE6_DEPTH)

    # Chamfer3
    chamfer3_edges = [part.edges().sort_by_distance(p)[0] for p in [
        (111, 73.5, -220),
        (61.5, 56, -220),
        (12, 73.5, -220),
        (133, 4, 0),
        (143, 4, -60),
        (123, 76, -50),
        (123, 61, -125),
        (123, 76, -200),
        (0, 45.5, -220),
        (123, 45.5, -220),
        (123, 47.5, 0),
        (0, 45.5, 0),
    ]]
    chamfer(chamfer3_edges, length=CHAMFER3_SIZE)

    # Chamfer4
    chamfer4_edges = [part.edges().sort_by_distance(p)[0] for p in [
        (133, 4, -102),
        (133, 4, -27),
    ]]
    chamfer(chamfer4_edges, length=CHAMFER4_SIZE)


solid = part.part
